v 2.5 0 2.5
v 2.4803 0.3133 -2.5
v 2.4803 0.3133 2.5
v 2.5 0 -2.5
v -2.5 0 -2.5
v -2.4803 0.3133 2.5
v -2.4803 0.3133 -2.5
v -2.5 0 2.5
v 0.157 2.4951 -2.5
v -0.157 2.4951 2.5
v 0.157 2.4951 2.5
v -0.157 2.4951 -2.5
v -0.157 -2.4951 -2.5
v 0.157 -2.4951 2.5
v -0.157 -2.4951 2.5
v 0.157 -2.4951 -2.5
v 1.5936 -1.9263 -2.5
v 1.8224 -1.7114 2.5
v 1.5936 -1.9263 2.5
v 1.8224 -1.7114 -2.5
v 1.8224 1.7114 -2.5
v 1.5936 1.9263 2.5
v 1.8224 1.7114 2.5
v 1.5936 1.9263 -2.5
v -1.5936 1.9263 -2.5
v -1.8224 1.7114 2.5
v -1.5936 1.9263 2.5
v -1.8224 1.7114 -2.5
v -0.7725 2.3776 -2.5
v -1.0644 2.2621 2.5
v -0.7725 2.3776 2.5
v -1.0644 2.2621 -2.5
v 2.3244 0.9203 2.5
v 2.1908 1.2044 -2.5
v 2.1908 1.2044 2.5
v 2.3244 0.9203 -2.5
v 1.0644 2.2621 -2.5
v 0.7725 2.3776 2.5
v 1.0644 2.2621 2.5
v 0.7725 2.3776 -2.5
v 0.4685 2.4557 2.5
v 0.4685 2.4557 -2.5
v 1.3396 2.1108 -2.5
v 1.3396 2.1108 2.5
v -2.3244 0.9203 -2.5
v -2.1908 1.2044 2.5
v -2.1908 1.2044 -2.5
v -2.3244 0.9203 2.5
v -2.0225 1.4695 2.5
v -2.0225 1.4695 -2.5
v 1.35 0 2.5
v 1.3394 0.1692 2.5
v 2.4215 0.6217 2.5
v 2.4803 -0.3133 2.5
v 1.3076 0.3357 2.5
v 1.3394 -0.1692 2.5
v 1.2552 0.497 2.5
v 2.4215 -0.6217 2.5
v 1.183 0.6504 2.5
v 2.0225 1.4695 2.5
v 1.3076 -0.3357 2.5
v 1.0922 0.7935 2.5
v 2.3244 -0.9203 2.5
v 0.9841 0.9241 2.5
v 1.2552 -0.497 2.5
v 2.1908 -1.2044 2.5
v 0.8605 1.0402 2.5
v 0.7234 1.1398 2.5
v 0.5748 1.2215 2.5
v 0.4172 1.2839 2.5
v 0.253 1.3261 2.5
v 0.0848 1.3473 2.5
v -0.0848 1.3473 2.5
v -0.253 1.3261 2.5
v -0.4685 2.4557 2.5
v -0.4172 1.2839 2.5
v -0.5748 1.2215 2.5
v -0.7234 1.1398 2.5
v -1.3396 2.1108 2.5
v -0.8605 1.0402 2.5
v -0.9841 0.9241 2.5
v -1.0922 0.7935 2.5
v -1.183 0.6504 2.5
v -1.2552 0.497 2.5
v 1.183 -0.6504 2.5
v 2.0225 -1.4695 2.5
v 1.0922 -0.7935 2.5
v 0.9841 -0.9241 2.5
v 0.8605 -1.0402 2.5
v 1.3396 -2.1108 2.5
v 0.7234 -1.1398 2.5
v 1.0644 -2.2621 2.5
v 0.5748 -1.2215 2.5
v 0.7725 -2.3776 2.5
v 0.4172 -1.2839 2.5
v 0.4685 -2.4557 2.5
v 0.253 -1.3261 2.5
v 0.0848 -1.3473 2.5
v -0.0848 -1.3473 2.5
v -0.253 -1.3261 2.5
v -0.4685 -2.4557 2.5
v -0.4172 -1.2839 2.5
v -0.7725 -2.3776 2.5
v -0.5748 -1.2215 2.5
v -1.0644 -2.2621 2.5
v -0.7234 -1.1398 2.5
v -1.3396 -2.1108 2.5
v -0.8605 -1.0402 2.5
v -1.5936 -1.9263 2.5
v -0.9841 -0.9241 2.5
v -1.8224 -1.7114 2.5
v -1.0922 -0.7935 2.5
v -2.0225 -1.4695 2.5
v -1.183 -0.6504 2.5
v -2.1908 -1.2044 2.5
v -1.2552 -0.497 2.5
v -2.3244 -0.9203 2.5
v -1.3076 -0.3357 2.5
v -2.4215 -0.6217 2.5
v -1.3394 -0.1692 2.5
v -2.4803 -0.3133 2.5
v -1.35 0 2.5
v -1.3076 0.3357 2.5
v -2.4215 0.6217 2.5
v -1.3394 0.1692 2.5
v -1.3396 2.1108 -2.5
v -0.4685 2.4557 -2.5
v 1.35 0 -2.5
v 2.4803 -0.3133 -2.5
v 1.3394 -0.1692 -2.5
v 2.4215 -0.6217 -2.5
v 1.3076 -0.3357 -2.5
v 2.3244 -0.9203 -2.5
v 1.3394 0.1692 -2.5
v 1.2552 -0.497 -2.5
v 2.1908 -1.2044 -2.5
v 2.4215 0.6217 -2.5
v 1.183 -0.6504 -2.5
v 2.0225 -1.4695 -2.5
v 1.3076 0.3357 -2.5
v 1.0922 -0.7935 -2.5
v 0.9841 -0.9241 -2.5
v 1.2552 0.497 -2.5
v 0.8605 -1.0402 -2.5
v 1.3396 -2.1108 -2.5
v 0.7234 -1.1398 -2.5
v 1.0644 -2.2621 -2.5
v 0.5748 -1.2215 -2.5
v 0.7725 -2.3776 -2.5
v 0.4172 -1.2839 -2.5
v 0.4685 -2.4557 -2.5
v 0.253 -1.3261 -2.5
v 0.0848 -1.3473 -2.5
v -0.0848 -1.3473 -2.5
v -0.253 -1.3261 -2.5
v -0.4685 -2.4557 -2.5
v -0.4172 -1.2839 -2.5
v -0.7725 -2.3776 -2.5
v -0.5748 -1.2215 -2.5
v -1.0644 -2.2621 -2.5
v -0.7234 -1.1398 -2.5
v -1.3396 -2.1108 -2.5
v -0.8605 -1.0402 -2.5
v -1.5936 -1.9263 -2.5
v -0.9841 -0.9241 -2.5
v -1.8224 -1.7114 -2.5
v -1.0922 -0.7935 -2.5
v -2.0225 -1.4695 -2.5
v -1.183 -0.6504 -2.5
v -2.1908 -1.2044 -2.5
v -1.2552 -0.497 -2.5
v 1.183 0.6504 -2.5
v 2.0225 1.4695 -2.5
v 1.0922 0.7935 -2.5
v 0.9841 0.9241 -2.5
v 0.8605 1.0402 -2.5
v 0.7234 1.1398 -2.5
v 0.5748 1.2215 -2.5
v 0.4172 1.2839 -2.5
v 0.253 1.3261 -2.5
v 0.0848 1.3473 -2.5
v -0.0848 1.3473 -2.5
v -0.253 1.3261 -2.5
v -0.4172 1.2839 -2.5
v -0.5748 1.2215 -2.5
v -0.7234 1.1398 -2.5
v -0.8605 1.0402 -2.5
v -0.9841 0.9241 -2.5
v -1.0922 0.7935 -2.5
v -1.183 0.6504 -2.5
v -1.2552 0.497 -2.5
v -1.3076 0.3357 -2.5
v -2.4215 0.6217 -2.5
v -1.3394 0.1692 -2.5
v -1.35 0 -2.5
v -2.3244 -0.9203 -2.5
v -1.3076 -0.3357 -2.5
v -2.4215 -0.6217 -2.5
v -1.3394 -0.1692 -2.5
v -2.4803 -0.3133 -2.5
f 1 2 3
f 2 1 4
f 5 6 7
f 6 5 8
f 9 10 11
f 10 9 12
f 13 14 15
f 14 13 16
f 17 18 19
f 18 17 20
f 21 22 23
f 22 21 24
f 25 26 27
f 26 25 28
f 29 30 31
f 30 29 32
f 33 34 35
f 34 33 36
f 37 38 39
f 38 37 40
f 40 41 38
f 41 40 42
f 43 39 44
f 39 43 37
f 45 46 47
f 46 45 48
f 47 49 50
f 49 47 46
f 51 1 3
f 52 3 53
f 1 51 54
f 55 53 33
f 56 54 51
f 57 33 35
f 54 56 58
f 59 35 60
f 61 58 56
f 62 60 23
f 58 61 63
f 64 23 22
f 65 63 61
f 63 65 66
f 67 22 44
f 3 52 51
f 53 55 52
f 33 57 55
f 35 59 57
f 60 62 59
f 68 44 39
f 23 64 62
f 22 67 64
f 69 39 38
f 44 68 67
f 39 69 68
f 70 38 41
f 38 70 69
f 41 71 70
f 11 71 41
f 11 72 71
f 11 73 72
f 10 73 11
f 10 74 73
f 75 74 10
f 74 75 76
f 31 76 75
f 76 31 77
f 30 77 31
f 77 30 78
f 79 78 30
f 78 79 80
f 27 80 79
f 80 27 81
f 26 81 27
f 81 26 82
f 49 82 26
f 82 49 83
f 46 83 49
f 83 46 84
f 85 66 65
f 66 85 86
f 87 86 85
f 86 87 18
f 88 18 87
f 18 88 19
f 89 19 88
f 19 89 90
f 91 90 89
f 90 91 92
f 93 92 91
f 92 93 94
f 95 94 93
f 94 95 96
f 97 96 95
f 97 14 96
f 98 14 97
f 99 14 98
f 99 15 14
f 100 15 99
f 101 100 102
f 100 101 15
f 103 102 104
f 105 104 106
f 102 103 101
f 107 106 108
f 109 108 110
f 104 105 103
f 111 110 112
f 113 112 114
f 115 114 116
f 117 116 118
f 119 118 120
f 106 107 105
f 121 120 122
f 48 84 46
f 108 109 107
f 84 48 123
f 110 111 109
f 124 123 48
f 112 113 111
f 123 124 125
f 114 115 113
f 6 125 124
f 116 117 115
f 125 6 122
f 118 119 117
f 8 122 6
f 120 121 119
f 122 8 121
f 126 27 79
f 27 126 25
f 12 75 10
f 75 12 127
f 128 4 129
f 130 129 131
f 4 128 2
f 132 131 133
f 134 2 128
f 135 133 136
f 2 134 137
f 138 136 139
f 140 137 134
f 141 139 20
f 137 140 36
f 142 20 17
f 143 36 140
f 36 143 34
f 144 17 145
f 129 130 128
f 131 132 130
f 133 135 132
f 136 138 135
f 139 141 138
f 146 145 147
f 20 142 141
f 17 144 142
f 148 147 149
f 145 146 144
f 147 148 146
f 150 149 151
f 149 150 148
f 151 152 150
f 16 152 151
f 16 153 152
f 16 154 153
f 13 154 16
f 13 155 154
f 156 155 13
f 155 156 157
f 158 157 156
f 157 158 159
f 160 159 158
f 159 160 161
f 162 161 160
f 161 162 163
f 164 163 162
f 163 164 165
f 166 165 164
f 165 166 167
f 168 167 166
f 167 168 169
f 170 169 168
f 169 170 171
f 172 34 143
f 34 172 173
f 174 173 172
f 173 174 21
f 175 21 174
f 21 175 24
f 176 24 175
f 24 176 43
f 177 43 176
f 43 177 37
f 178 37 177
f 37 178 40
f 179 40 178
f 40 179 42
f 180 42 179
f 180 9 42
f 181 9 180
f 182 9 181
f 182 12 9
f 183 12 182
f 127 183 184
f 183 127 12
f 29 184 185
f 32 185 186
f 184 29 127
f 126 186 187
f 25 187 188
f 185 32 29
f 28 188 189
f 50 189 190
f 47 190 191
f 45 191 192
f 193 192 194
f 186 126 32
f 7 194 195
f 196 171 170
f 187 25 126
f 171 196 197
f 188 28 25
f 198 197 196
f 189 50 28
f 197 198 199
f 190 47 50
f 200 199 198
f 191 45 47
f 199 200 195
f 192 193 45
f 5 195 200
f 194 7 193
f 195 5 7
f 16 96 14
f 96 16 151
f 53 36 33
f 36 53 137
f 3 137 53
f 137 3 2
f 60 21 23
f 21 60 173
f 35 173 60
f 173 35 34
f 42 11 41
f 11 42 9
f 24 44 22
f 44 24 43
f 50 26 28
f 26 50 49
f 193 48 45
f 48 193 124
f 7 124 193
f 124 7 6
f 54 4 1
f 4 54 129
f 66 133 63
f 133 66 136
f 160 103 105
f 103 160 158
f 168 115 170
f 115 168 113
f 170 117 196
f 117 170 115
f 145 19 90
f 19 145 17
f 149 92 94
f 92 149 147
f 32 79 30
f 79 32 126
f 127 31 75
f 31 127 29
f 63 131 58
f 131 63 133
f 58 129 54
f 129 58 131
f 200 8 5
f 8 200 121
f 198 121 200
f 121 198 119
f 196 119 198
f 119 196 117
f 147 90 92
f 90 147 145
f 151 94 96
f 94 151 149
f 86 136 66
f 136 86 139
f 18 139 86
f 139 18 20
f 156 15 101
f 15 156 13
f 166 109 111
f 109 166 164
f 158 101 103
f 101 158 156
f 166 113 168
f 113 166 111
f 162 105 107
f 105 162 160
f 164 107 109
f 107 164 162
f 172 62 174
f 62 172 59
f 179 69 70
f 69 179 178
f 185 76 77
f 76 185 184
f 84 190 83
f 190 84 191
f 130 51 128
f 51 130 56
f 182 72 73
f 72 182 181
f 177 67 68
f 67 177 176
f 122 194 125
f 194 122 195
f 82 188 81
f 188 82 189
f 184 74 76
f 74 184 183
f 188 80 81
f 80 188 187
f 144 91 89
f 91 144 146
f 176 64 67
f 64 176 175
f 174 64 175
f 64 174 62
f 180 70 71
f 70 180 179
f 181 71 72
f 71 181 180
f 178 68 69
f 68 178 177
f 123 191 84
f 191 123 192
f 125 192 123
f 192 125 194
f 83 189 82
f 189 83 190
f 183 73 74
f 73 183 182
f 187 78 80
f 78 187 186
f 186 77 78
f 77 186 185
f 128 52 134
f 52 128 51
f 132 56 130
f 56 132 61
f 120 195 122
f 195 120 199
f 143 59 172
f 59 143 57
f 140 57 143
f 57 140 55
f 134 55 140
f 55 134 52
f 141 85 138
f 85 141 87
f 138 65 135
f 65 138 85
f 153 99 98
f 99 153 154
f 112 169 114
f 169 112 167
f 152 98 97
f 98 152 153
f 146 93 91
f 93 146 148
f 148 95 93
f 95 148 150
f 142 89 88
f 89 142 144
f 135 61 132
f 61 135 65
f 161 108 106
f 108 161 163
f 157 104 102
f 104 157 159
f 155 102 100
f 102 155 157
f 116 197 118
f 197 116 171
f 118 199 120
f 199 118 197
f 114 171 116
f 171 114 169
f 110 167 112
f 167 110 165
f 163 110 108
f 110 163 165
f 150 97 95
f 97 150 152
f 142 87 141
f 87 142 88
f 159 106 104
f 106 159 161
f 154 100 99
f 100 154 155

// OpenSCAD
$fn = 50;


difference() {
	union() {
		translate(v = [0, 0, -2.5000000000]) {
			cylinder(h = 5, r = 2.5000000000);
		}
	}
	union() {
		translate(v = [0, 0, -100.0000000000]) {
			cylinder(h = 200, r = 1.3500000000);
		}
	}
}
